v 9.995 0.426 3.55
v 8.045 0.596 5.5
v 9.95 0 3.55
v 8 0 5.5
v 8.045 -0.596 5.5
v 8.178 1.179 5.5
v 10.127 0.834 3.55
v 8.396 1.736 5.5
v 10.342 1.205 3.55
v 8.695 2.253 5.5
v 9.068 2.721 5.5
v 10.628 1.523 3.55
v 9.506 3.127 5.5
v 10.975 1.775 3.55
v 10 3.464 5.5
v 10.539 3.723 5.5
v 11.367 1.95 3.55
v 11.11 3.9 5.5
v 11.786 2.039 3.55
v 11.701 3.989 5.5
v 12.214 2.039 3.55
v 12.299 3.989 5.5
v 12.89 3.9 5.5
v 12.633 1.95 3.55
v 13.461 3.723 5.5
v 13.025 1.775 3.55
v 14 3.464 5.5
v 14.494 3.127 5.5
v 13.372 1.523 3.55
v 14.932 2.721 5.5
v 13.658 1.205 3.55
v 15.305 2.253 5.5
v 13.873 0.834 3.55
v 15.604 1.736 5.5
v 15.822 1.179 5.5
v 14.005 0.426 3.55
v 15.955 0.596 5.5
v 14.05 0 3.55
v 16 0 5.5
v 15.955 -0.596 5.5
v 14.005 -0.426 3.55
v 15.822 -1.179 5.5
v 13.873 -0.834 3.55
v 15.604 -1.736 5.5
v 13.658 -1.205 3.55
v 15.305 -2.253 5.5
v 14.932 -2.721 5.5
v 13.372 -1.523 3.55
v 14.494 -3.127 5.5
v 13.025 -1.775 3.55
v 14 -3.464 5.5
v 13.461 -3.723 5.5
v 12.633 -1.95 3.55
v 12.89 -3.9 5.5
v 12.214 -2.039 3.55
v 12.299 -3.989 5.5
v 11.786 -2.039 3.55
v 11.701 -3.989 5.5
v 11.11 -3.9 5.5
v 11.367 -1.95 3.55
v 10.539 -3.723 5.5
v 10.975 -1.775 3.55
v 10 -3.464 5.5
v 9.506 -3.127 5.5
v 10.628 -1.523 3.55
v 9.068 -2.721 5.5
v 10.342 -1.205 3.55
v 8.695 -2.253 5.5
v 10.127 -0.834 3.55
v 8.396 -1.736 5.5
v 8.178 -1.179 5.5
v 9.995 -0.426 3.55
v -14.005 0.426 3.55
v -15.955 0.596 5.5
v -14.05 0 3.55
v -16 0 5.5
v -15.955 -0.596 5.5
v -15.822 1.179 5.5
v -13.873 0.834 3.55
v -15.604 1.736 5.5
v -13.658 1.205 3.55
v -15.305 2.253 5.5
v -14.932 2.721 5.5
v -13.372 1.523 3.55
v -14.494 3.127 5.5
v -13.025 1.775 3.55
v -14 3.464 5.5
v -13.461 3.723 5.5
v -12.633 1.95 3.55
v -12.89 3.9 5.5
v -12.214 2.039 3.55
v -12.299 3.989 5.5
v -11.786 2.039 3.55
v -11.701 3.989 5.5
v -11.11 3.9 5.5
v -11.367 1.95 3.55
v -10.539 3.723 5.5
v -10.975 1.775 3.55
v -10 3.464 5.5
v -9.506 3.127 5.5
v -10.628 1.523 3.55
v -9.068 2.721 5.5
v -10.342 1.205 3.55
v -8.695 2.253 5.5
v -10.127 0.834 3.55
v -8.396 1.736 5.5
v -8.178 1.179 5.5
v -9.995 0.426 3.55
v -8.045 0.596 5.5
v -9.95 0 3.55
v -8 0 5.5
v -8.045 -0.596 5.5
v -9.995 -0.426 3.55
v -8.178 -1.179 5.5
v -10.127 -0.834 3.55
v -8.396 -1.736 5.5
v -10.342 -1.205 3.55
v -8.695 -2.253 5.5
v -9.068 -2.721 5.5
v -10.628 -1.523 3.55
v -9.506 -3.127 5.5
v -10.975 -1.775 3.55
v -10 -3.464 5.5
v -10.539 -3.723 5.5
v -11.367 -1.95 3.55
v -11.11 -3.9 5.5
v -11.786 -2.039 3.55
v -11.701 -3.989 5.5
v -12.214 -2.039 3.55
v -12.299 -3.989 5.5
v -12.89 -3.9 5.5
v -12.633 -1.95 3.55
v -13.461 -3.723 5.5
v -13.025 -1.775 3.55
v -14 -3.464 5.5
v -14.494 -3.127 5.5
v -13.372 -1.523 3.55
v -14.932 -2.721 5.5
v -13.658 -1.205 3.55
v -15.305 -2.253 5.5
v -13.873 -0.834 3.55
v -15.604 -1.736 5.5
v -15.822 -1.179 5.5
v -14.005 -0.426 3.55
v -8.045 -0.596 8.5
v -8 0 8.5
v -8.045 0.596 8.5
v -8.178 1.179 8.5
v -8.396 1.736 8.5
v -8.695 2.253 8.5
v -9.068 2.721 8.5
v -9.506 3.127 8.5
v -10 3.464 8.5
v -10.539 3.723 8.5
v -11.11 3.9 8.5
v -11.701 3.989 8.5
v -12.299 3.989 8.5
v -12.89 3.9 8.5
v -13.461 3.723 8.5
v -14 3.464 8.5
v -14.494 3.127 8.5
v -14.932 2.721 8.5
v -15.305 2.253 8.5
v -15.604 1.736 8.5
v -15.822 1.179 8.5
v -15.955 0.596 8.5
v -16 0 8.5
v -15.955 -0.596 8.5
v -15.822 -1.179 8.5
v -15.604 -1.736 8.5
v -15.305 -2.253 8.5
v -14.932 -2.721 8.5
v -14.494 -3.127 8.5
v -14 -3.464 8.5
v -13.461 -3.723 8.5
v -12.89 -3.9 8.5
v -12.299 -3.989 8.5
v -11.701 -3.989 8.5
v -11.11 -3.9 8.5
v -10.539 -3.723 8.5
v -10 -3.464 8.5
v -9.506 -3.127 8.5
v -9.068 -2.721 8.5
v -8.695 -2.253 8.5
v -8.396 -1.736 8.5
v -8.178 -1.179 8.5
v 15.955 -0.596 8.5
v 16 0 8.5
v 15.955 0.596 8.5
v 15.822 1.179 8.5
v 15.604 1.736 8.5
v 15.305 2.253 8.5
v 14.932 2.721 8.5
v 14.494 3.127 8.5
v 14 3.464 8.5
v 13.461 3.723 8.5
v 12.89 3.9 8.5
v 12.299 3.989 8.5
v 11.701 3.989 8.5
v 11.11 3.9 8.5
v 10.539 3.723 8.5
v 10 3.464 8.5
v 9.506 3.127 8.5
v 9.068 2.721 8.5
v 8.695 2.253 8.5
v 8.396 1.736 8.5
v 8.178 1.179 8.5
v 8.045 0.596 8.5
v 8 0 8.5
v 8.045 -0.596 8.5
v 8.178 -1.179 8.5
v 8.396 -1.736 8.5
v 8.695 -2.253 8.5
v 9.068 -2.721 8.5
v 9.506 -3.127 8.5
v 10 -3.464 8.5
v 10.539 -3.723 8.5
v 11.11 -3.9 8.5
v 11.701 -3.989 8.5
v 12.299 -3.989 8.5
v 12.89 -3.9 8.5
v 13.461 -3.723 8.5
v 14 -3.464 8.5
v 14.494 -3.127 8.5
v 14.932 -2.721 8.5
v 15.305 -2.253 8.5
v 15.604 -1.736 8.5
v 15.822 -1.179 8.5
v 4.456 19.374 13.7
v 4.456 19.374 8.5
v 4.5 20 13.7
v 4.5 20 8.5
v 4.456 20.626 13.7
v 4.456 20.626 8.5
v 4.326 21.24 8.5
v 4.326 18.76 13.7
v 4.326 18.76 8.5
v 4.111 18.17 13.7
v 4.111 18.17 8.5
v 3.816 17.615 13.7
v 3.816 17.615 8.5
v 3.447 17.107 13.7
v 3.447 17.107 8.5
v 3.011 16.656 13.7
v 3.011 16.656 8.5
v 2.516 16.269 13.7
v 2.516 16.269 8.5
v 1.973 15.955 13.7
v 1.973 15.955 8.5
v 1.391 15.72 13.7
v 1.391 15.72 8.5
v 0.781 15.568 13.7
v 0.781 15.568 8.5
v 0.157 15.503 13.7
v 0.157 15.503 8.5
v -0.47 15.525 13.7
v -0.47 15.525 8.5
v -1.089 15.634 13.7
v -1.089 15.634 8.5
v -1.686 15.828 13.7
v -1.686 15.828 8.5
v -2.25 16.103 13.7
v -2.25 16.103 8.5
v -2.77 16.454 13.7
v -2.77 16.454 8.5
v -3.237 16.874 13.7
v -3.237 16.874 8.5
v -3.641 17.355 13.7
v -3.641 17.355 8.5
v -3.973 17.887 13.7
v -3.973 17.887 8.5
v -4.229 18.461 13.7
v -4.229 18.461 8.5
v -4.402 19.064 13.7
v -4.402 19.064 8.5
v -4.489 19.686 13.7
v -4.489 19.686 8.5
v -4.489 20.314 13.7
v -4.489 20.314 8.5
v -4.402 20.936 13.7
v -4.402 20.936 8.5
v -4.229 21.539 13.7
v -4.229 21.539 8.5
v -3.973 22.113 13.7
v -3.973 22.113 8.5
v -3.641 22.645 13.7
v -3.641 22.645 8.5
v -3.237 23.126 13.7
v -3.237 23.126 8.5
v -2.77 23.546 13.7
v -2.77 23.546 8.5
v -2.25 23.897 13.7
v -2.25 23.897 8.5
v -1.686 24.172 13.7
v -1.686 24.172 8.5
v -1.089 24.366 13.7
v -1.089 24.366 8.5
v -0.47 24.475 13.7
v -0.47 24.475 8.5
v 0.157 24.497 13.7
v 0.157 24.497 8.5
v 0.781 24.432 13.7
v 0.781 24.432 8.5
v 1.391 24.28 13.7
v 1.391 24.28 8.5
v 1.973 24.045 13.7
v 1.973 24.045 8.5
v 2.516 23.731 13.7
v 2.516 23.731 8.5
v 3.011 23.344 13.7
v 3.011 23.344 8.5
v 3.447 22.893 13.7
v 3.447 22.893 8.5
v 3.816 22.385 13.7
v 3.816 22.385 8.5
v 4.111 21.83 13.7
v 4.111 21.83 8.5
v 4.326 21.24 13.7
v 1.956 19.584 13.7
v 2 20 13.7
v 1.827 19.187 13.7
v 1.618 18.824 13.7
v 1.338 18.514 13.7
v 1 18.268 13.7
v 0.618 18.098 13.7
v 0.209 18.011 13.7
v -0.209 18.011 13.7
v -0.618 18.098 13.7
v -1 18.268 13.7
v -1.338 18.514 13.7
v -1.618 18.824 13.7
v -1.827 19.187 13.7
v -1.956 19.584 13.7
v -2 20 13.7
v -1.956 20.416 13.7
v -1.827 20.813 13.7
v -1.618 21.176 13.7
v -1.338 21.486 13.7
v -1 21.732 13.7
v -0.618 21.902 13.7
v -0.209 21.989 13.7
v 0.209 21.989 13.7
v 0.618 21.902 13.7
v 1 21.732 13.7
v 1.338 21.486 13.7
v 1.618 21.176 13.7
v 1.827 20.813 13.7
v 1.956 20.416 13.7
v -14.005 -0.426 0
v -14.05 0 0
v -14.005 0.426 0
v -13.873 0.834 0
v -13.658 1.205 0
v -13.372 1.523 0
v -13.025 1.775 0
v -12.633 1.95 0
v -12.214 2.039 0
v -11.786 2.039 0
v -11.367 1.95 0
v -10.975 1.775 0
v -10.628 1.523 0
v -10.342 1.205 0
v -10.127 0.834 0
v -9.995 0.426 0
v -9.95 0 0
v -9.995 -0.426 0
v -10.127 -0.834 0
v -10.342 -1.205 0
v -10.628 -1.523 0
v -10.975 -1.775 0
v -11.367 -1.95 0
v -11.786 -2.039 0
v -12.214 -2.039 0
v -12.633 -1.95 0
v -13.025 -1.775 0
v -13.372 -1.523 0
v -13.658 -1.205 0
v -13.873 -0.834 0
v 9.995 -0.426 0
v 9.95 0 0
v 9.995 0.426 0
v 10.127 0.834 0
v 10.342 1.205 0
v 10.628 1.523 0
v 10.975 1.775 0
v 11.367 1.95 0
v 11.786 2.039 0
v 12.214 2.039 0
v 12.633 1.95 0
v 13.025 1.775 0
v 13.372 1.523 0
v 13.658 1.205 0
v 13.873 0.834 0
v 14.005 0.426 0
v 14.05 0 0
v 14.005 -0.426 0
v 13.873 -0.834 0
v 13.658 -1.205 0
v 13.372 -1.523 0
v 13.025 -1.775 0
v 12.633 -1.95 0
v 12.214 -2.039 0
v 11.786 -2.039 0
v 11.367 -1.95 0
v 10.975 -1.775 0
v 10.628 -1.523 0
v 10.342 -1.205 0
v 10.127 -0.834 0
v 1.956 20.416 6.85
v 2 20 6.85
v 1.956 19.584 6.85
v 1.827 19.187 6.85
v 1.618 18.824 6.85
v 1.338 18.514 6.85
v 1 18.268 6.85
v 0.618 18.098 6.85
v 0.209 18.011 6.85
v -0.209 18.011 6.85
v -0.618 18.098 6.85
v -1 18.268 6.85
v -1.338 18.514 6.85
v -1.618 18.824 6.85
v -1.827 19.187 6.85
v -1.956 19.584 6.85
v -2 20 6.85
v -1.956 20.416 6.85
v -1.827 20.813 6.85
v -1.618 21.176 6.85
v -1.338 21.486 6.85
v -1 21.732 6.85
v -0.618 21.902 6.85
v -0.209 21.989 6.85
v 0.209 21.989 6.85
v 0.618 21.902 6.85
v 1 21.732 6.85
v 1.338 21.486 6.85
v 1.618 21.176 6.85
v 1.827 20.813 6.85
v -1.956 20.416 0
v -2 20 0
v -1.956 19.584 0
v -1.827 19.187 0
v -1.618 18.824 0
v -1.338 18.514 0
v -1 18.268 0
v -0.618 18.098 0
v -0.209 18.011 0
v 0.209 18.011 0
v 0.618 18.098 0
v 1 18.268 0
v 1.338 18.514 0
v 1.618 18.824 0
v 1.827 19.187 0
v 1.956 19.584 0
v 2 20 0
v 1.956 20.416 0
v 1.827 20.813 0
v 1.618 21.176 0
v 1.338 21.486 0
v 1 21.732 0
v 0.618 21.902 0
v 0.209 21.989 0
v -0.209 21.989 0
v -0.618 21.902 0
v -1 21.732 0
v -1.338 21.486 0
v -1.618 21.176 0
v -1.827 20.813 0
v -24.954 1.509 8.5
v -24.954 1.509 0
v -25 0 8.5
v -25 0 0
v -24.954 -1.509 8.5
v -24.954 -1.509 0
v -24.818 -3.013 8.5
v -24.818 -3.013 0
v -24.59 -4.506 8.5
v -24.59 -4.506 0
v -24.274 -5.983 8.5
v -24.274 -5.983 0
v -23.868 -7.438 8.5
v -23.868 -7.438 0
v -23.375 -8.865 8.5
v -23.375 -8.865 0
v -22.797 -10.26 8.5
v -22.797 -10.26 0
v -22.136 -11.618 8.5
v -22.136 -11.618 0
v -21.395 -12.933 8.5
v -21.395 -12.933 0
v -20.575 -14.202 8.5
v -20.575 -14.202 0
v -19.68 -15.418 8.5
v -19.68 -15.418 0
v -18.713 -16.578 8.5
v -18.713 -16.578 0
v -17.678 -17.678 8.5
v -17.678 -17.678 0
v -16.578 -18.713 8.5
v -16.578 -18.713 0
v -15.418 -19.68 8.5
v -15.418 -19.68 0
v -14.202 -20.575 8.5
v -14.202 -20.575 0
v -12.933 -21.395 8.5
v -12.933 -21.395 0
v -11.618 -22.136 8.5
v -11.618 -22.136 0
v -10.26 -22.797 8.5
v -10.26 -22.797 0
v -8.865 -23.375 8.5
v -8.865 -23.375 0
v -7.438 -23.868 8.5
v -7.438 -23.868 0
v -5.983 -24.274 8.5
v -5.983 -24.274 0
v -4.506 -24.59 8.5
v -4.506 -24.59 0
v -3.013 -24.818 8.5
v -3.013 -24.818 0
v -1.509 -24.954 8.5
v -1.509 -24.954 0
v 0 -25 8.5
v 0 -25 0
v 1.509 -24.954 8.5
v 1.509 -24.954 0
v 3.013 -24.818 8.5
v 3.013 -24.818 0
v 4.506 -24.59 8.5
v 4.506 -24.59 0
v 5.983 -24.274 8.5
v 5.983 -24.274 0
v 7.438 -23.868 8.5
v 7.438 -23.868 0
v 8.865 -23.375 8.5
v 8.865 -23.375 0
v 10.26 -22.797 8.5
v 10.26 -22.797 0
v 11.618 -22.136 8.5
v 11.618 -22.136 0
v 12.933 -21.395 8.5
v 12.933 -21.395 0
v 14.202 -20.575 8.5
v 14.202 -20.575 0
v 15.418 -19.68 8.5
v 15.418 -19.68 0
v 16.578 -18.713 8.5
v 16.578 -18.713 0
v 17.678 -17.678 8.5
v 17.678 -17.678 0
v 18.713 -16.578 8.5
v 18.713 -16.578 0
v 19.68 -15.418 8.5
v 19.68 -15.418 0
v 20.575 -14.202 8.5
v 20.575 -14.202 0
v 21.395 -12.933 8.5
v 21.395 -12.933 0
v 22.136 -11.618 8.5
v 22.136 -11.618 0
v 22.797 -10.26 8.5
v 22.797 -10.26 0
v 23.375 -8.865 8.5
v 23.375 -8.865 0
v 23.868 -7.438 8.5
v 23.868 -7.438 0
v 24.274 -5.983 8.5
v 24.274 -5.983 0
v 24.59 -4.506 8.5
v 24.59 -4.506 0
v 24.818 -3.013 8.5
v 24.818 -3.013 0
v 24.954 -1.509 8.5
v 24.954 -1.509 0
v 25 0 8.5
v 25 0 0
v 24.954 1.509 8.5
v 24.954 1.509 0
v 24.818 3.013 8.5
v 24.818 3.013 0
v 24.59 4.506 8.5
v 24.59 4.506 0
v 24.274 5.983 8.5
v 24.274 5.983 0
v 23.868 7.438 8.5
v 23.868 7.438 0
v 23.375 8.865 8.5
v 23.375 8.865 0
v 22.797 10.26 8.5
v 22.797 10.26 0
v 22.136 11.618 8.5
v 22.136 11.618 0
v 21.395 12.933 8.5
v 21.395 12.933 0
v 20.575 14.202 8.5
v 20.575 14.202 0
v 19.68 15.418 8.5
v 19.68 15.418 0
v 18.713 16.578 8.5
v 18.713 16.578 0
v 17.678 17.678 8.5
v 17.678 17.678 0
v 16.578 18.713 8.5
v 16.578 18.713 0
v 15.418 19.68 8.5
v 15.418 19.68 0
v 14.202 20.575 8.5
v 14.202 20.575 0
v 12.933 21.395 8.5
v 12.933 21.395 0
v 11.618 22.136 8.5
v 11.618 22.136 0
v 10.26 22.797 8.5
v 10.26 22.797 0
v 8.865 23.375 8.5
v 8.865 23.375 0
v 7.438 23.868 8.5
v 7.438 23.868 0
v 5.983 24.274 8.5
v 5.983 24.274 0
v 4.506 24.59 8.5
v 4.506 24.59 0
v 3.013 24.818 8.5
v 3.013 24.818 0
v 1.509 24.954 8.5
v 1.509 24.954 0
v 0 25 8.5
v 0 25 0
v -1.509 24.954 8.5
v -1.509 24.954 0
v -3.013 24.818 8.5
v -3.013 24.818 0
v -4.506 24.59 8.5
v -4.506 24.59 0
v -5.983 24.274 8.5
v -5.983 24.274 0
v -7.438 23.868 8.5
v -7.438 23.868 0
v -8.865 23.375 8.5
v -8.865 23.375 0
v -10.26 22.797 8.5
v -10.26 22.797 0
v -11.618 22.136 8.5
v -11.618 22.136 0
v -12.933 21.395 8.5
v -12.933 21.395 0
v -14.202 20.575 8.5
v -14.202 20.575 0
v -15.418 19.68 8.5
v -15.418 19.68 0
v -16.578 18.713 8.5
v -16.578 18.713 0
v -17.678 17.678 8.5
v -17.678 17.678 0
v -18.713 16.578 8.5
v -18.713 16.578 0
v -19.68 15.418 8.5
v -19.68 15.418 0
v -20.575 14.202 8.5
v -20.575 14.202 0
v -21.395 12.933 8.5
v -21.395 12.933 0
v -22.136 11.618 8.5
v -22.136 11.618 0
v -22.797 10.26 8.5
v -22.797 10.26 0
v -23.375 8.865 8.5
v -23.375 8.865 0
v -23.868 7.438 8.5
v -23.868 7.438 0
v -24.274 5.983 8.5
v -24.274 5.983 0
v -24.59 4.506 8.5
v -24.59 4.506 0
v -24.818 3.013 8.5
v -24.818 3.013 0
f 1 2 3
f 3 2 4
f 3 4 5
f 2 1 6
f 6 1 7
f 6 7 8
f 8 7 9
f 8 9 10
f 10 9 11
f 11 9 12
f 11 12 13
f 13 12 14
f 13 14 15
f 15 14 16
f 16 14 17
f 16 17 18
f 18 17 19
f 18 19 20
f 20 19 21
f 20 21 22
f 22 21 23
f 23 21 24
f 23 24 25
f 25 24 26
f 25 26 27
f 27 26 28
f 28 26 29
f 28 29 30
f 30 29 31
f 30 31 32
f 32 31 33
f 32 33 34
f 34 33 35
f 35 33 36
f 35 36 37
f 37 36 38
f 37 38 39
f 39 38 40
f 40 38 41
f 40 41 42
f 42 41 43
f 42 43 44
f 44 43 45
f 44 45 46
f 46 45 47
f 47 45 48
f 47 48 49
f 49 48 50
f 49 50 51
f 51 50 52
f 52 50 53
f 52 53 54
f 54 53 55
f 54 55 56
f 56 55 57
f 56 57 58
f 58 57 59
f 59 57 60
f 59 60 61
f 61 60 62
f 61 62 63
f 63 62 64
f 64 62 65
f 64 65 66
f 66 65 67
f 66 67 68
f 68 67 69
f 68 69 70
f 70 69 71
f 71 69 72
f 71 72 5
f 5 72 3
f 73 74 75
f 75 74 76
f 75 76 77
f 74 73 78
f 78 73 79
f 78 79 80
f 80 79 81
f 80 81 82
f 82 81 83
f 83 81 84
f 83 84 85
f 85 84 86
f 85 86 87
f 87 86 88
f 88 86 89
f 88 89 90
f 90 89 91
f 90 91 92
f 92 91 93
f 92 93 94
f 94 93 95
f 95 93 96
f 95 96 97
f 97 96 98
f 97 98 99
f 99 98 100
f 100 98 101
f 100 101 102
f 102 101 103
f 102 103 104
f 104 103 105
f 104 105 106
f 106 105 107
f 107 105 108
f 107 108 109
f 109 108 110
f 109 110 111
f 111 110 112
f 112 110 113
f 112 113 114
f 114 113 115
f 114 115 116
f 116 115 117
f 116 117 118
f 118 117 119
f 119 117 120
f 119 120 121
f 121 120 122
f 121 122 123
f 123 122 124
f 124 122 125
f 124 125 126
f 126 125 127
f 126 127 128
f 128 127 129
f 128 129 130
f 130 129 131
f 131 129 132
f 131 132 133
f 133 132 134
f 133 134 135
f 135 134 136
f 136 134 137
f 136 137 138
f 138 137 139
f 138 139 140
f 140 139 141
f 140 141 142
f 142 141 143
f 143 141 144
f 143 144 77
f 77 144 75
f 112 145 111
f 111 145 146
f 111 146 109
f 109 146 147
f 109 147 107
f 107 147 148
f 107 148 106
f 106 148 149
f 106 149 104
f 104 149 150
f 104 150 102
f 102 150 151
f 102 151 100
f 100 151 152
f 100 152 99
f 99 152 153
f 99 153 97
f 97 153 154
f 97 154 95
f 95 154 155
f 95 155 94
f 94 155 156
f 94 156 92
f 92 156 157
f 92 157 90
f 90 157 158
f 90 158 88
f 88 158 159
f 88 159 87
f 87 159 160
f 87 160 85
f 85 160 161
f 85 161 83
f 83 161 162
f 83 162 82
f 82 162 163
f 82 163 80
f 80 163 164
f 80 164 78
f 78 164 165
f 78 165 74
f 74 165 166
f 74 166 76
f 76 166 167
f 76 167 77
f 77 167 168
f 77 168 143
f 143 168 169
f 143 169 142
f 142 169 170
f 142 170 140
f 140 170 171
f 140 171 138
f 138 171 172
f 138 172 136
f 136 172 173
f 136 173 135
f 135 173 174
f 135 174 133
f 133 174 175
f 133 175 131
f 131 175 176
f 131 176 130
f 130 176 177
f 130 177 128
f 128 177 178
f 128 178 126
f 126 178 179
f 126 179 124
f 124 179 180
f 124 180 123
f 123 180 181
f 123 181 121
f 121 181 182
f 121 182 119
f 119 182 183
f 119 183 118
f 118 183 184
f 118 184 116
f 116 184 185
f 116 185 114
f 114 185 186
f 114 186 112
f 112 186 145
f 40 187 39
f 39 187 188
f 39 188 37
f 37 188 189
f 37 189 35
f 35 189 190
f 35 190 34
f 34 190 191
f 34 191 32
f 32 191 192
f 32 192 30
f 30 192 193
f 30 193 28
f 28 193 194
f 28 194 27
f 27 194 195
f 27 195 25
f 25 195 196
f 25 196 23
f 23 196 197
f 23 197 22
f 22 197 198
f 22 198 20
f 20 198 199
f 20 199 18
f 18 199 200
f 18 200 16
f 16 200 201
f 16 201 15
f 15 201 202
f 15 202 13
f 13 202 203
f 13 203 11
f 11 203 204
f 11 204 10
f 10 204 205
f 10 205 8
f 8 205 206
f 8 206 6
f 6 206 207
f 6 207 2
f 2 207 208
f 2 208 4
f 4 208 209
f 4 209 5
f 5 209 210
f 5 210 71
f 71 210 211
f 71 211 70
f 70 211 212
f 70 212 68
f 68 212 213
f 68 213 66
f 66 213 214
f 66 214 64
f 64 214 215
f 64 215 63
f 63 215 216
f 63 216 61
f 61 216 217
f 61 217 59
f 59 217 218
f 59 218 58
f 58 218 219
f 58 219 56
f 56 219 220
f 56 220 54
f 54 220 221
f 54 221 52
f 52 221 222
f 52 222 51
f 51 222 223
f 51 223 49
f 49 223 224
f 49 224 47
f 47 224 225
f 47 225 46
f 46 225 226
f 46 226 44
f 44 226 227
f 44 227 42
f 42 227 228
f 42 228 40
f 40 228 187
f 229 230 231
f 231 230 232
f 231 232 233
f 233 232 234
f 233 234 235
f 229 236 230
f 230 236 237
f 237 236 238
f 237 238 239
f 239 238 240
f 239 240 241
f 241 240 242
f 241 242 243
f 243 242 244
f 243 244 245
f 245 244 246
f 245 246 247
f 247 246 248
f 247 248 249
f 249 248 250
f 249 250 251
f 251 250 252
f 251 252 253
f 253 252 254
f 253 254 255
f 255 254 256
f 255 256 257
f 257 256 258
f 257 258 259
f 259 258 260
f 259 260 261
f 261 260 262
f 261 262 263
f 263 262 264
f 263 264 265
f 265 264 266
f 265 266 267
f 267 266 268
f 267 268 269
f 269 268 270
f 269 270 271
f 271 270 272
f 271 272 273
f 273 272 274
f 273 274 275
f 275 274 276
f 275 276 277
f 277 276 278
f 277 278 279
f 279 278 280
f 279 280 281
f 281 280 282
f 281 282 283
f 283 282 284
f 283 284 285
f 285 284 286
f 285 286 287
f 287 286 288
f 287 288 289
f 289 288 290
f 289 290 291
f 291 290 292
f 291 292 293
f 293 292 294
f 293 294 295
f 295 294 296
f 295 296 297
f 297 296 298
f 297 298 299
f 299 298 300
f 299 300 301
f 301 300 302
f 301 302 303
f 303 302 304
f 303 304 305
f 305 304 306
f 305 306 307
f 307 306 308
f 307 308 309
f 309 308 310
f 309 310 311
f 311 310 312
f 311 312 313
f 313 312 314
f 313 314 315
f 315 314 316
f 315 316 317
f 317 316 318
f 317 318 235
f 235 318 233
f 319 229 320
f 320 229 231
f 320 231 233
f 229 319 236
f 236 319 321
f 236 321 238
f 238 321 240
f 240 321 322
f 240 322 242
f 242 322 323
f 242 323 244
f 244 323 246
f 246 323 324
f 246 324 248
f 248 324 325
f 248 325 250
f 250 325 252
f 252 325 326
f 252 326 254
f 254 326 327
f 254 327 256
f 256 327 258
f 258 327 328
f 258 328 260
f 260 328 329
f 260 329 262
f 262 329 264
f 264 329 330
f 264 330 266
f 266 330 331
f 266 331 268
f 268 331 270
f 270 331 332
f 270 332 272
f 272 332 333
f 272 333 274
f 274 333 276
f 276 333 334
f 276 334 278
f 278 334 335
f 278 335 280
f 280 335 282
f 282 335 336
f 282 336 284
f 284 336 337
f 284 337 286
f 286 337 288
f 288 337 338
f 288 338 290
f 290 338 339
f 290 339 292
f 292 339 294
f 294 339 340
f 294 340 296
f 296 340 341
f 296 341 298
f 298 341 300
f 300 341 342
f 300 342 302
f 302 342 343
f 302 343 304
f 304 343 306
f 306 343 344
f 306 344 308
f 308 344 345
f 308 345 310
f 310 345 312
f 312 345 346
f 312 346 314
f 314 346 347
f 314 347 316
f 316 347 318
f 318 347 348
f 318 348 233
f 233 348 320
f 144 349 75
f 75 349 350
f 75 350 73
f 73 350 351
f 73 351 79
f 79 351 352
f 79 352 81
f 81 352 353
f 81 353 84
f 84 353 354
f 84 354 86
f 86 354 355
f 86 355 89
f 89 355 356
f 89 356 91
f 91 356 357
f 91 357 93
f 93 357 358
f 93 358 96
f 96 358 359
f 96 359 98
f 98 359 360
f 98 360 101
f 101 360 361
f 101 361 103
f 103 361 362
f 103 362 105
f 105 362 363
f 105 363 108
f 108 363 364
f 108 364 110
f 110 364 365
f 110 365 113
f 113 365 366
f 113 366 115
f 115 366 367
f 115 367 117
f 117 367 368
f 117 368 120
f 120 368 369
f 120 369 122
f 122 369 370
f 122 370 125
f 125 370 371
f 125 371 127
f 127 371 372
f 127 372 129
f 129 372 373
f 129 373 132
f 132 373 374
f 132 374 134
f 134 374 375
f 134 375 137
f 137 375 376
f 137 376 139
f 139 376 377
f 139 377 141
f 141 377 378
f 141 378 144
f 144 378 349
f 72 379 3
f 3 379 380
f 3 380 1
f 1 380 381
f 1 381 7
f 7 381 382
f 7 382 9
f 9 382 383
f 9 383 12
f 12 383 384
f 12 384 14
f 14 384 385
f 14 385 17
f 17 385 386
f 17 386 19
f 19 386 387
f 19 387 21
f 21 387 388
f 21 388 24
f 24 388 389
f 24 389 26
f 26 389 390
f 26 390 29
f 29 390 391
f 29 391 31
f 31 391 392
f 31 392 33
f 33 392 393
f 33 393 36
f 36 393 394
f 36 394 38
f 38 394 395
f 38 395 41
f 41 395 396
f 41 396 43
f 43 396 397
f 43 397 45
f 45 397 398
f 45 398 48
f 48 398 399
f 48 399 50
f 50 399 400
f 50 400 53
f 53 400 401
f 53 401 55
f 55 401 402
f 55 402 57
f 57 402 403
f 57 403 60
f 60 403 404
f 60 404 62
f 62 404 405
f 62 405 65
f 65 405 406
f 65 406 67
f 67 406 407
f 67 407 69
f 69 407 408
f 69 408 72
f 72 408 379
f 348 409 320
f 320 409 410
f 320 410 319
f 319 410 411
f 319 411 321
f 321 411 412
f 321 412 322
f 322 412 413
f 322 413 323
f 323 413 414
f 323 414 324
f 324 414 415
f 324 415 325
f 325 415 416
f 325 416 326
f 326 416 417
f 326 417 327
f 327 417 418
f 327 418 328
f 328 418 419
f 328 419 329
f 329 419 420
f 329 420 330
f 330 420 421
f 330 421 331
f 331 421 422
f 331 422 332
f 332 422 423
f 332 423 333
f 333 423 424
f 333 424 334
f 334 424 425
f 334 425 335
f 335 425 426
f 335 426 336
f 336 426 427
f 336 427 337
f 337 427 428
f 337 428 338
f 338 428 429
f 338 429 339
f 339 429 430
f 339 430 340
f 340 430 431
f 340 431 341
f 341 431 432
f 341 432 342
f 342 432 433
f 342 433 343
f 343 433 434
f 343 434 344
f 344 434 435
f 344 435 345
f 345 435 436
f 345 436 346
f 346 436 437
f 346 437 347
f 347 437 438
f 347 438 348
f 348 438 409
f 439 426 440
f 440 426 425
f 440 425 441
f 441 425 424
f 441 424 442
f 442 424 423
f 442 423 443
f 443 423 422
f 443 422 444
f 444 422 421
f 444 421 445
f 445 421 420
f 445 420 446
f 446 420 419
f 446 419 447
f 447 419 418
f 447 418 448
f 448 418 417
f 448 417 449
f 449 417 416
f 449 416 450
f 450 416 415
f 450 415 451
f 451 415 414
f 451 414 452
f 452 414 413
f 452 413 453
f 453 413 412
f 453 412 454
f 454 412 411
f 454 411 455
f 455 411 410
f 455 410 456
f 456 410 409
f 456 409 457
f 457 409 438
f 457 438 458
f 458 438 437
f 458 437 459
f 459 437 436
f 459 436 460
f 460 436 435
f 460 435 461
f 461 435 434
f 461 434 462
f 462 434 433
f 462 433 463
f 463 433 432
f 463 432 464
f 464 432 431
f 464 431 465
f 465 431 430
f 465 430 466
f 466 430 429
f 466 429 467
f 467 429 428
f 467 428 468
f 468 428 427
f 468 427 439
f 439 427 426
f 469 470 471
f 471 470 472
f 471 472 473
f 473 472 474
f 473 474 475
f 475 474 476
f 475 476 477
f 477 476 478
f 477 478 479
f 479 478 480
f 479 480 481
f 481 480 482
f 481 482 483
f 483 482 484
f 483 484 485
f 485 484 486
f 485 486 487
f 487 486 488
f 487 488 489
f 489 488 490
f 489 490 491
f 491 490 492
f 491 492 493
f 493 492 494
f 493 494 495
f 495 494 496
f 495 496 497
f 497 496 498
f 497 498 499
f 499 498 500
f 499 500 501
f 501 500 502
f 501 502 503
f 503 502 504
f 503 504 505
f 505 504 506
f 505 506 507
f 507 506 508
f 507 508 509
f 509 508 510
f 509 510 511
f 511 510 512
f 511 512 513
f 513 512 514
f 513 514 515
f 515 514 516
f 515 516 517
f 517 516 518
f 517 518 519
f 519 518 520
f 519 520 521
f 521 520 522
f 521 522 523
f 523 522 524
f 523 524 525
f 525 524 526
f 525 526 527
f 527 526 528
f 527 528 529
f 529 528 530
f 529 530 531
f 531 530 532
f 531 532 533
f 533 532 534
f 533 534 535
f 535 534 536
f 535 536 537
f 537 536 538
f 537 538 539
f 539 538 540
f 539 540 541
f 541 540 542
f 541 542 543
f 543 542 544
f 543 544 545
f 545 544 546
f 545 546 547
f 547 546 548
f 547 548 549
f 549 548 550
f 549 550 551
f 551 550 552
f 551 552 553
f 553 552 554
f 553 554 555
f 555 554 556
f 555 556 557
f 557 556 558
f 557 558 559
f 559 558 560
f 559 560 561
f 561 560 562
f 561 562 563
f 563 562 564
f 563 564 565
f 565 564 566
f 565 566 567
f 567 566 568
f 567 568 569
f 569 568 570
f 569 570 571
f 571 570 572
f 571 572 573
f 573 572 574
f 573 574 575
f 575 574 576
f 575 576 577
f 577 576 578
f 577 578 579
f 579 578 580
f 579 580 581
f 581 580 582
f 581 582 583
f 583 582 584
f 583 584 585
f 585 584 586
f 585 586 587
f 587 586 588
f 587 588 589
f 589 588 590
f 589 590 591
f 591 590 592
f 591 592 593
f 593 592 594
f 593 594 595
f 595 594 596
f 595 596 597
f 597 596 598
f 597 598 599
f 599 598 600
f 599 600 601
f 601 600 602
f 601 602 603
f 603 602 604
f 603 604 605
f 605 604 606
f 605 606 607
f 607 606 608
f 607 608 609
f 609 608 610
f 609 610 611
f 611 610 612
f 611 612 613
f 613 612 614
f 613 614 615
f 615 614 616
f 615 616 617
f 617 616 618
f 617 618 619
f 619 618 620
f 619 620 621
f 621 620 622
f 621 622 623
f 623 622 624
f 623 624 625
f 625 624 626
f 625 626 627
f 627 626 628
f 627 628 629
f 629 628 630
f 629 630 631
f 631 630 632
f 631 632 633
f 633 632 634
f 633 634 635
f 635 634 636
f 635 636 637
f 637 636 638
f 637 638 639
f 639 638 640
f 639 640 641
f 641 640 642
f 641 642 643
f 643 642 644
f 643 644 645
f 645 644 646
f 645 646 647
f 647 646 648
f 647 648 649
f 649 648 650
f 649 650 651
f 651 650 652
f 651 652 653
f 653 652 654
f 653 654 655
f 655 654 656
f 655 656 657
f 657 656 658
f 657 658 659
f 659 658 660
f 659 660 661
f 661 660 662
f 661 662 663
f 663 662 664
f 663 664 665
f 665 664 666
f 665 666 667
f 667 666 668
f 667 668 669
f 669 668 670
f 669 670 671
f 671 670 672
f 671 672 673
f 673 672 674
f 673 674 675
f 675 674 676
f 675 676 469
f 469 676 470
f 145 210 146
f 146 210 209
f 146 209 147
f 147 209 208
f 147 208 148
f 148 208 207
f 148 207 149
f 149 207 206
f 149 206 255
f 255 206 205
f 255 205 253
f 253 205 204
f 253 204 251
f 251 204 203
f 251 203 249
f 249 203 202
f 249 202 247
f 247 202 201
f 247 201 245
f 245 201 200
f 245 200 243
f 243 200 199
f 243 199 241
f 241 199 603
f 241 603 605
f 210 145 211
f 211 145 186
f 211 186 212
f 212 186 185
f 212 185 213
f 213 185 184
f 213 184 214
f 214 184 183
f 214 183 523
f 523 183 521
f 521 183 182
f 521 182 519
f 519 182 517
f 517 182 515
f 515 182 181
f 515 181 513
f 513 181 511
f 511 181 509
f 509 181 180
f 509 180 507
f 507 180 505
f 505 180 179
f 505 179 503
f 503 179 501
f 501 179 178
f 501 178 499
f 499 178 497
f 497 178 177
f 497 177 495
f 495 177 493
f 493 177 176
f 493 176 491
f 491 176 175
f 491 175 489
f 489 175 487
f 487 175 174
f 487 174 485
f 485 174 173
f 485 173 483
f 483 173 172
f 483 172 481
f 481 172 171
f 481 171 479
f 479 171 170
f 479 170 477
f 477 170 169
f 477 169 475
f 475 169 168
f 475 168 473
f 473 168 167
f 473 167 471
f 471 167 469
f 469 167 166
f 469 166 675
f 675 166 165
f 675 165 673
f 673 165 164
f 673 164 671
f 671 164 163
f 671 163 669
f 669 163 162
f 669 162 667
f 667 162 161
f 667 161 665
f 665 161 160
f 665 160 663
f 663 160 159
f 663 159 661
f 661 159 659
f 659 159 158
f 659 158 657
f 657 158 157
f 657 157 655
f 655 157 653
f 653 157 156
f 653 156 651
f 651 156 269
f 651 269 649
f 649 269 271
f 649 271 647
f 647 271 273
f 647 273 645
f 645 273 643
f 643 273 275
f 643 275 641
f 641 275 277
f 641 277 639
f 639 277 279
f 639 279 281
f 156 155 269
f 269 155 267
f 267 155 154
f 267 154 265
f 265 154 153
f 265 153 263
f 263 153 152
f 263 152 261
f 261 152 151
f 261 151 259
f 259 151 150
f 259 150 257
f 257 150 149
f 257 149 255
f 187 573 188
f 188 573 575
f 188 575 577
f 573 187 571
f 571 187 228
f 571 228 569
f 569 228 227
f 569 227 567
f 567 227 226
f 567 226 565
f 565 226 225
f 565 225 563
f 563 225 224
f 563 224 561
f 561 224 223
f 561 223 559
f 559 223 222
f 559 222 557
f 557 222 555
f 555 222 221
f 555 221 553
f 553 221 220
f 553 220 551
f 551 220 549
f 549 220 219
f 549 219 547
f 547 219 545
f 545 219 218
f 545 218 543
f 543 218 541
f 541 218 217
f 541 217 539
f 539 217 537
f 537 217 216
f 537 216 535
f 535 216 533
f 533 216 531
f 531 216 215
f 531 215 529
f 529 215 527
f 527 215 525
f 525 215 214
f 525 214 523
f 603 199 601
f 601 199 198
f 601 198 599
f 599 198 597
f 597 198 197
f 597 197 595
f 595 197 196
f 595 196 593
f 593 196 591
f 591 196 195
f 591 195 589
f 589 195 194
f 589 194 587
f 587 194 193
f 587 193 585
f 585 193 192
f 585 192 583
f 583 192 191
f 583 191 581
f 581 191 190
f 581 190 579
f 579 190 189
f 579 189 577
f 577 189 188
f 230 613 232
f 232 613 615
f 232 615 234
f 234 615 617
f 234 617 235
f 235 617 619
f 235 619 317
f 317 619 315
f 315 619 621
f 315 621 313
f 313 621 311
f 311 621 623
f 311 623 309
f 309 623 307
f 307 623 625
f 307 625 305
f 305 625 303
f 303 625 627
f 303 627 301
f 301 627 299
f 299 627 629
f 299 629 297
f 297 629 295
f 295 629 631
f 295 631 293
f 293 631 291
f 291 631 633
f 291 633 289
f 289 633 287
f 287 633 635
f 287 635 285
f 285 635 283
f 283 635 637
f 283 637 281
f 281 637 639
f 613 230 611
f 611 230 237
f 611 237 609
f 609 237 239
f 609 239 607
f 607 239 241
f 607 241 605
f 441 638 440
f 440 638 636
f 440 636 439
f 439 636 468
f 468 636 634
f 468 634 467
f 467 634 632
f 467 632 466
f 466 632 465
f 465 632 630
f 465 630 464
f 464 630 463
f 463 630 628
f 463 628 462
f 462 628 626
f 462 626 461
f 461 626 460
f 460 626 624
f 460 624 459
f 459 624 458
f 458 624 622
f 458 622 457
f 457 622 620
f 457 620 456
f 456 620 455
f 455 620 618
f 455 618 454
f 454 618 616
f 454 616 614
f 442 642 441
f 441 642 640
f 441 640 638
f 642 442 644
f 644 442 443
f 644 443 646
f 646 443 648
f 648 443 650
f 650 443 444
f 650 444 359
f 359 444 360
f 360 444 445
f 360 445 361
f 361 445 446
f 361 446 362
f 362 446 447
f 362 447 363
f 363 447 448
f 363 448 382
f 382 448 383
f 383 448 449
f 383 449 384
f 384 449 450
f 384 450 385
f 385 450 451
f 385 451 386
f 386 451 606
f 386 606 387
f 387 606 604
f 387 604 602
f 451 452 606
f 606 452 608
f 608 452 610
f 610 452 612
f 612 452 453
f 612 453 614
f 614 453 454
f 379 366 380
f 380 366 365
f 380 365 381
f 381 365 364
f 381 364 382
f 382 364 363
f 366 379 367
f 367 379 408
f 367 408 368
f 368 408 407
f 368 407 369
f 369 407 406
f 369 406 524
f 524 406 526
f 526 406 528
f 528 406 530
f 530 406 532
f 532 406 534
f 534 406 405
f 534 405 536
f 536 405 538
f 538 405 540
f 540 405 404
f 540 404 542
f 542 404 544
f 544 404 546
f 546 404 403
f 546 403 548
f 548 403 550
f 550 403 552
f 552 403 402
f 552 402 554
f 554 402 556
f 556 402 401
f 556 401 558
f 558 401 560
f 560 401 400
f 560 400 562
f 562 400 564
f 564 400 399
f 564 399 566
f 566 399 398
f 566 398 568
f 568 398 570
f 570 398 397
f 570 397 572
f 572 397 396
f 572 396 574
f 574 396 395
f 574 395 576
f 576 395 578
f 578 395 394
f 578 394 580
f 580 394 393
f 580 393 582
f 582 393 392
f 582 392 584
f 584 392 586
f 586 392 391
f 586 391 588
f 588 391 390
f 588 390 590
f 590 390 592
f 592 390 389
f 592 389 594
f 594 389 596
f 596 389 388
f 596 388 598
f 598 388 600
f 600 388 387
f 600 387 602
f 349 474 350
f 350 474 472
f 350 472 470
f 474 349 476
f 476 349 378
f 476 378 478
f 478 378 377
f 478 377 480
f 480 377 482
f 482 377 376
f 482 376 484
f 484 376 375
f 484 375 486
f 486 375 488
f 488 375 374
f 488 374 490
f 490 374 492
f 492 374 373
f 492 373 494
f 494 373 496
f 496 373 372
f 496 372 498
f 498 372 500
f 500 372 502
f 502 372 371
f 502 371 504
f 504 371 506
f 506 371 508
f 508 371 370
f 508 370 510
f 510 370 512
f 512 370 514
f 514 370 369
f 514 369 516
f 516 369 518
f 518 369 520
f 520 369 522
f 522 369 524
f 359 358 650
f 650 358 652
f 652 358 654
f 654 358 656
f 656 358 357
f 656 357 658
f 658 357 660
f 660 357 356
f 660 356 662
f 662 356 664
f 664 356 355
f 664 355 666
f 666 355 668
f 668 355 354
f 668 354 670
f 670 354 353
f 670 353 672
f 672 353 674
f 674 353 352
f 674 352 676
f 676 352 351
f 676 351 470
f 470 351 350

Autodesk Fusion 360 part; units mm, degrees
sketch "Esquisse1" plane through (0, 0, 0) normal (0, 0, 1) x (1, 0, 0)
  circle A0 centre (0, 0) radius 25
  circle A1 centre (-12, 0) radius 2.05
  circle A2 centre (12, 0) radius 2.05
  circle A3 centre (0, 20) radius 2
  dimension "d1" = 50
  dimension "d2" = 4.1
  dimension "d3" = 4.1
  dimension "d4" = 24
  dimension "d5" = 12
  dimension "d6" = 4
  dimension "d7" = 20
extrude "Extrusion1" add sketch "Esquisse1" along normal blind 8.5
sketch "Esquisse2" plane through (0, 0, 8.5) normal (0, 0, 1) x (-1, 0, 0)
  circle A0 centre (0, -20) radius 2
  circle A1 centre (-12, 0) radius 2.05
  circle A2 centre (12, 0) radius 2.05
  circle A3 centre (0, 0) radius 25
  circle A4 centre (0, -20) radius 4.5
  dimension "d10" = 9
extrude "Extrusion2" add sketch "Esquisse2" along normal blind 5.2 contours A4
sketch "Esquisse3" plane through (0, 0, 8.5) normal (0, 0, 1) x (-1, 0, 0)
  circle A0 centre (0, -20) radius 4.5
  circle A1 centre (-12, 0) radius 2.05
  circle A2 centre (12, 0) radius 2.05
  circle A3 centre (0, 0) radius 25
  circle A4 centre (12, 0) radius 4
  circle A5 centre (-12, 0) radius 4
  dimension "d13" = 8
  dimension "d14" = 8
extrude "Extrusion3" cut sketch "Esquisse3" against normal blind 3 contours A4 | A5
hole "Perçage1" at (-12, 0, 5.5) direction (0, 0, -1) diameter 4 depth 10 tip angle 118 countersink diameter 8 countersink angle 90
hole "Perçage2" at (12, 0, 5.5) direction (0, 0, -1) diameter 4 depth 10 tip angle 118 countersink diameter 8 countersink angle 90
